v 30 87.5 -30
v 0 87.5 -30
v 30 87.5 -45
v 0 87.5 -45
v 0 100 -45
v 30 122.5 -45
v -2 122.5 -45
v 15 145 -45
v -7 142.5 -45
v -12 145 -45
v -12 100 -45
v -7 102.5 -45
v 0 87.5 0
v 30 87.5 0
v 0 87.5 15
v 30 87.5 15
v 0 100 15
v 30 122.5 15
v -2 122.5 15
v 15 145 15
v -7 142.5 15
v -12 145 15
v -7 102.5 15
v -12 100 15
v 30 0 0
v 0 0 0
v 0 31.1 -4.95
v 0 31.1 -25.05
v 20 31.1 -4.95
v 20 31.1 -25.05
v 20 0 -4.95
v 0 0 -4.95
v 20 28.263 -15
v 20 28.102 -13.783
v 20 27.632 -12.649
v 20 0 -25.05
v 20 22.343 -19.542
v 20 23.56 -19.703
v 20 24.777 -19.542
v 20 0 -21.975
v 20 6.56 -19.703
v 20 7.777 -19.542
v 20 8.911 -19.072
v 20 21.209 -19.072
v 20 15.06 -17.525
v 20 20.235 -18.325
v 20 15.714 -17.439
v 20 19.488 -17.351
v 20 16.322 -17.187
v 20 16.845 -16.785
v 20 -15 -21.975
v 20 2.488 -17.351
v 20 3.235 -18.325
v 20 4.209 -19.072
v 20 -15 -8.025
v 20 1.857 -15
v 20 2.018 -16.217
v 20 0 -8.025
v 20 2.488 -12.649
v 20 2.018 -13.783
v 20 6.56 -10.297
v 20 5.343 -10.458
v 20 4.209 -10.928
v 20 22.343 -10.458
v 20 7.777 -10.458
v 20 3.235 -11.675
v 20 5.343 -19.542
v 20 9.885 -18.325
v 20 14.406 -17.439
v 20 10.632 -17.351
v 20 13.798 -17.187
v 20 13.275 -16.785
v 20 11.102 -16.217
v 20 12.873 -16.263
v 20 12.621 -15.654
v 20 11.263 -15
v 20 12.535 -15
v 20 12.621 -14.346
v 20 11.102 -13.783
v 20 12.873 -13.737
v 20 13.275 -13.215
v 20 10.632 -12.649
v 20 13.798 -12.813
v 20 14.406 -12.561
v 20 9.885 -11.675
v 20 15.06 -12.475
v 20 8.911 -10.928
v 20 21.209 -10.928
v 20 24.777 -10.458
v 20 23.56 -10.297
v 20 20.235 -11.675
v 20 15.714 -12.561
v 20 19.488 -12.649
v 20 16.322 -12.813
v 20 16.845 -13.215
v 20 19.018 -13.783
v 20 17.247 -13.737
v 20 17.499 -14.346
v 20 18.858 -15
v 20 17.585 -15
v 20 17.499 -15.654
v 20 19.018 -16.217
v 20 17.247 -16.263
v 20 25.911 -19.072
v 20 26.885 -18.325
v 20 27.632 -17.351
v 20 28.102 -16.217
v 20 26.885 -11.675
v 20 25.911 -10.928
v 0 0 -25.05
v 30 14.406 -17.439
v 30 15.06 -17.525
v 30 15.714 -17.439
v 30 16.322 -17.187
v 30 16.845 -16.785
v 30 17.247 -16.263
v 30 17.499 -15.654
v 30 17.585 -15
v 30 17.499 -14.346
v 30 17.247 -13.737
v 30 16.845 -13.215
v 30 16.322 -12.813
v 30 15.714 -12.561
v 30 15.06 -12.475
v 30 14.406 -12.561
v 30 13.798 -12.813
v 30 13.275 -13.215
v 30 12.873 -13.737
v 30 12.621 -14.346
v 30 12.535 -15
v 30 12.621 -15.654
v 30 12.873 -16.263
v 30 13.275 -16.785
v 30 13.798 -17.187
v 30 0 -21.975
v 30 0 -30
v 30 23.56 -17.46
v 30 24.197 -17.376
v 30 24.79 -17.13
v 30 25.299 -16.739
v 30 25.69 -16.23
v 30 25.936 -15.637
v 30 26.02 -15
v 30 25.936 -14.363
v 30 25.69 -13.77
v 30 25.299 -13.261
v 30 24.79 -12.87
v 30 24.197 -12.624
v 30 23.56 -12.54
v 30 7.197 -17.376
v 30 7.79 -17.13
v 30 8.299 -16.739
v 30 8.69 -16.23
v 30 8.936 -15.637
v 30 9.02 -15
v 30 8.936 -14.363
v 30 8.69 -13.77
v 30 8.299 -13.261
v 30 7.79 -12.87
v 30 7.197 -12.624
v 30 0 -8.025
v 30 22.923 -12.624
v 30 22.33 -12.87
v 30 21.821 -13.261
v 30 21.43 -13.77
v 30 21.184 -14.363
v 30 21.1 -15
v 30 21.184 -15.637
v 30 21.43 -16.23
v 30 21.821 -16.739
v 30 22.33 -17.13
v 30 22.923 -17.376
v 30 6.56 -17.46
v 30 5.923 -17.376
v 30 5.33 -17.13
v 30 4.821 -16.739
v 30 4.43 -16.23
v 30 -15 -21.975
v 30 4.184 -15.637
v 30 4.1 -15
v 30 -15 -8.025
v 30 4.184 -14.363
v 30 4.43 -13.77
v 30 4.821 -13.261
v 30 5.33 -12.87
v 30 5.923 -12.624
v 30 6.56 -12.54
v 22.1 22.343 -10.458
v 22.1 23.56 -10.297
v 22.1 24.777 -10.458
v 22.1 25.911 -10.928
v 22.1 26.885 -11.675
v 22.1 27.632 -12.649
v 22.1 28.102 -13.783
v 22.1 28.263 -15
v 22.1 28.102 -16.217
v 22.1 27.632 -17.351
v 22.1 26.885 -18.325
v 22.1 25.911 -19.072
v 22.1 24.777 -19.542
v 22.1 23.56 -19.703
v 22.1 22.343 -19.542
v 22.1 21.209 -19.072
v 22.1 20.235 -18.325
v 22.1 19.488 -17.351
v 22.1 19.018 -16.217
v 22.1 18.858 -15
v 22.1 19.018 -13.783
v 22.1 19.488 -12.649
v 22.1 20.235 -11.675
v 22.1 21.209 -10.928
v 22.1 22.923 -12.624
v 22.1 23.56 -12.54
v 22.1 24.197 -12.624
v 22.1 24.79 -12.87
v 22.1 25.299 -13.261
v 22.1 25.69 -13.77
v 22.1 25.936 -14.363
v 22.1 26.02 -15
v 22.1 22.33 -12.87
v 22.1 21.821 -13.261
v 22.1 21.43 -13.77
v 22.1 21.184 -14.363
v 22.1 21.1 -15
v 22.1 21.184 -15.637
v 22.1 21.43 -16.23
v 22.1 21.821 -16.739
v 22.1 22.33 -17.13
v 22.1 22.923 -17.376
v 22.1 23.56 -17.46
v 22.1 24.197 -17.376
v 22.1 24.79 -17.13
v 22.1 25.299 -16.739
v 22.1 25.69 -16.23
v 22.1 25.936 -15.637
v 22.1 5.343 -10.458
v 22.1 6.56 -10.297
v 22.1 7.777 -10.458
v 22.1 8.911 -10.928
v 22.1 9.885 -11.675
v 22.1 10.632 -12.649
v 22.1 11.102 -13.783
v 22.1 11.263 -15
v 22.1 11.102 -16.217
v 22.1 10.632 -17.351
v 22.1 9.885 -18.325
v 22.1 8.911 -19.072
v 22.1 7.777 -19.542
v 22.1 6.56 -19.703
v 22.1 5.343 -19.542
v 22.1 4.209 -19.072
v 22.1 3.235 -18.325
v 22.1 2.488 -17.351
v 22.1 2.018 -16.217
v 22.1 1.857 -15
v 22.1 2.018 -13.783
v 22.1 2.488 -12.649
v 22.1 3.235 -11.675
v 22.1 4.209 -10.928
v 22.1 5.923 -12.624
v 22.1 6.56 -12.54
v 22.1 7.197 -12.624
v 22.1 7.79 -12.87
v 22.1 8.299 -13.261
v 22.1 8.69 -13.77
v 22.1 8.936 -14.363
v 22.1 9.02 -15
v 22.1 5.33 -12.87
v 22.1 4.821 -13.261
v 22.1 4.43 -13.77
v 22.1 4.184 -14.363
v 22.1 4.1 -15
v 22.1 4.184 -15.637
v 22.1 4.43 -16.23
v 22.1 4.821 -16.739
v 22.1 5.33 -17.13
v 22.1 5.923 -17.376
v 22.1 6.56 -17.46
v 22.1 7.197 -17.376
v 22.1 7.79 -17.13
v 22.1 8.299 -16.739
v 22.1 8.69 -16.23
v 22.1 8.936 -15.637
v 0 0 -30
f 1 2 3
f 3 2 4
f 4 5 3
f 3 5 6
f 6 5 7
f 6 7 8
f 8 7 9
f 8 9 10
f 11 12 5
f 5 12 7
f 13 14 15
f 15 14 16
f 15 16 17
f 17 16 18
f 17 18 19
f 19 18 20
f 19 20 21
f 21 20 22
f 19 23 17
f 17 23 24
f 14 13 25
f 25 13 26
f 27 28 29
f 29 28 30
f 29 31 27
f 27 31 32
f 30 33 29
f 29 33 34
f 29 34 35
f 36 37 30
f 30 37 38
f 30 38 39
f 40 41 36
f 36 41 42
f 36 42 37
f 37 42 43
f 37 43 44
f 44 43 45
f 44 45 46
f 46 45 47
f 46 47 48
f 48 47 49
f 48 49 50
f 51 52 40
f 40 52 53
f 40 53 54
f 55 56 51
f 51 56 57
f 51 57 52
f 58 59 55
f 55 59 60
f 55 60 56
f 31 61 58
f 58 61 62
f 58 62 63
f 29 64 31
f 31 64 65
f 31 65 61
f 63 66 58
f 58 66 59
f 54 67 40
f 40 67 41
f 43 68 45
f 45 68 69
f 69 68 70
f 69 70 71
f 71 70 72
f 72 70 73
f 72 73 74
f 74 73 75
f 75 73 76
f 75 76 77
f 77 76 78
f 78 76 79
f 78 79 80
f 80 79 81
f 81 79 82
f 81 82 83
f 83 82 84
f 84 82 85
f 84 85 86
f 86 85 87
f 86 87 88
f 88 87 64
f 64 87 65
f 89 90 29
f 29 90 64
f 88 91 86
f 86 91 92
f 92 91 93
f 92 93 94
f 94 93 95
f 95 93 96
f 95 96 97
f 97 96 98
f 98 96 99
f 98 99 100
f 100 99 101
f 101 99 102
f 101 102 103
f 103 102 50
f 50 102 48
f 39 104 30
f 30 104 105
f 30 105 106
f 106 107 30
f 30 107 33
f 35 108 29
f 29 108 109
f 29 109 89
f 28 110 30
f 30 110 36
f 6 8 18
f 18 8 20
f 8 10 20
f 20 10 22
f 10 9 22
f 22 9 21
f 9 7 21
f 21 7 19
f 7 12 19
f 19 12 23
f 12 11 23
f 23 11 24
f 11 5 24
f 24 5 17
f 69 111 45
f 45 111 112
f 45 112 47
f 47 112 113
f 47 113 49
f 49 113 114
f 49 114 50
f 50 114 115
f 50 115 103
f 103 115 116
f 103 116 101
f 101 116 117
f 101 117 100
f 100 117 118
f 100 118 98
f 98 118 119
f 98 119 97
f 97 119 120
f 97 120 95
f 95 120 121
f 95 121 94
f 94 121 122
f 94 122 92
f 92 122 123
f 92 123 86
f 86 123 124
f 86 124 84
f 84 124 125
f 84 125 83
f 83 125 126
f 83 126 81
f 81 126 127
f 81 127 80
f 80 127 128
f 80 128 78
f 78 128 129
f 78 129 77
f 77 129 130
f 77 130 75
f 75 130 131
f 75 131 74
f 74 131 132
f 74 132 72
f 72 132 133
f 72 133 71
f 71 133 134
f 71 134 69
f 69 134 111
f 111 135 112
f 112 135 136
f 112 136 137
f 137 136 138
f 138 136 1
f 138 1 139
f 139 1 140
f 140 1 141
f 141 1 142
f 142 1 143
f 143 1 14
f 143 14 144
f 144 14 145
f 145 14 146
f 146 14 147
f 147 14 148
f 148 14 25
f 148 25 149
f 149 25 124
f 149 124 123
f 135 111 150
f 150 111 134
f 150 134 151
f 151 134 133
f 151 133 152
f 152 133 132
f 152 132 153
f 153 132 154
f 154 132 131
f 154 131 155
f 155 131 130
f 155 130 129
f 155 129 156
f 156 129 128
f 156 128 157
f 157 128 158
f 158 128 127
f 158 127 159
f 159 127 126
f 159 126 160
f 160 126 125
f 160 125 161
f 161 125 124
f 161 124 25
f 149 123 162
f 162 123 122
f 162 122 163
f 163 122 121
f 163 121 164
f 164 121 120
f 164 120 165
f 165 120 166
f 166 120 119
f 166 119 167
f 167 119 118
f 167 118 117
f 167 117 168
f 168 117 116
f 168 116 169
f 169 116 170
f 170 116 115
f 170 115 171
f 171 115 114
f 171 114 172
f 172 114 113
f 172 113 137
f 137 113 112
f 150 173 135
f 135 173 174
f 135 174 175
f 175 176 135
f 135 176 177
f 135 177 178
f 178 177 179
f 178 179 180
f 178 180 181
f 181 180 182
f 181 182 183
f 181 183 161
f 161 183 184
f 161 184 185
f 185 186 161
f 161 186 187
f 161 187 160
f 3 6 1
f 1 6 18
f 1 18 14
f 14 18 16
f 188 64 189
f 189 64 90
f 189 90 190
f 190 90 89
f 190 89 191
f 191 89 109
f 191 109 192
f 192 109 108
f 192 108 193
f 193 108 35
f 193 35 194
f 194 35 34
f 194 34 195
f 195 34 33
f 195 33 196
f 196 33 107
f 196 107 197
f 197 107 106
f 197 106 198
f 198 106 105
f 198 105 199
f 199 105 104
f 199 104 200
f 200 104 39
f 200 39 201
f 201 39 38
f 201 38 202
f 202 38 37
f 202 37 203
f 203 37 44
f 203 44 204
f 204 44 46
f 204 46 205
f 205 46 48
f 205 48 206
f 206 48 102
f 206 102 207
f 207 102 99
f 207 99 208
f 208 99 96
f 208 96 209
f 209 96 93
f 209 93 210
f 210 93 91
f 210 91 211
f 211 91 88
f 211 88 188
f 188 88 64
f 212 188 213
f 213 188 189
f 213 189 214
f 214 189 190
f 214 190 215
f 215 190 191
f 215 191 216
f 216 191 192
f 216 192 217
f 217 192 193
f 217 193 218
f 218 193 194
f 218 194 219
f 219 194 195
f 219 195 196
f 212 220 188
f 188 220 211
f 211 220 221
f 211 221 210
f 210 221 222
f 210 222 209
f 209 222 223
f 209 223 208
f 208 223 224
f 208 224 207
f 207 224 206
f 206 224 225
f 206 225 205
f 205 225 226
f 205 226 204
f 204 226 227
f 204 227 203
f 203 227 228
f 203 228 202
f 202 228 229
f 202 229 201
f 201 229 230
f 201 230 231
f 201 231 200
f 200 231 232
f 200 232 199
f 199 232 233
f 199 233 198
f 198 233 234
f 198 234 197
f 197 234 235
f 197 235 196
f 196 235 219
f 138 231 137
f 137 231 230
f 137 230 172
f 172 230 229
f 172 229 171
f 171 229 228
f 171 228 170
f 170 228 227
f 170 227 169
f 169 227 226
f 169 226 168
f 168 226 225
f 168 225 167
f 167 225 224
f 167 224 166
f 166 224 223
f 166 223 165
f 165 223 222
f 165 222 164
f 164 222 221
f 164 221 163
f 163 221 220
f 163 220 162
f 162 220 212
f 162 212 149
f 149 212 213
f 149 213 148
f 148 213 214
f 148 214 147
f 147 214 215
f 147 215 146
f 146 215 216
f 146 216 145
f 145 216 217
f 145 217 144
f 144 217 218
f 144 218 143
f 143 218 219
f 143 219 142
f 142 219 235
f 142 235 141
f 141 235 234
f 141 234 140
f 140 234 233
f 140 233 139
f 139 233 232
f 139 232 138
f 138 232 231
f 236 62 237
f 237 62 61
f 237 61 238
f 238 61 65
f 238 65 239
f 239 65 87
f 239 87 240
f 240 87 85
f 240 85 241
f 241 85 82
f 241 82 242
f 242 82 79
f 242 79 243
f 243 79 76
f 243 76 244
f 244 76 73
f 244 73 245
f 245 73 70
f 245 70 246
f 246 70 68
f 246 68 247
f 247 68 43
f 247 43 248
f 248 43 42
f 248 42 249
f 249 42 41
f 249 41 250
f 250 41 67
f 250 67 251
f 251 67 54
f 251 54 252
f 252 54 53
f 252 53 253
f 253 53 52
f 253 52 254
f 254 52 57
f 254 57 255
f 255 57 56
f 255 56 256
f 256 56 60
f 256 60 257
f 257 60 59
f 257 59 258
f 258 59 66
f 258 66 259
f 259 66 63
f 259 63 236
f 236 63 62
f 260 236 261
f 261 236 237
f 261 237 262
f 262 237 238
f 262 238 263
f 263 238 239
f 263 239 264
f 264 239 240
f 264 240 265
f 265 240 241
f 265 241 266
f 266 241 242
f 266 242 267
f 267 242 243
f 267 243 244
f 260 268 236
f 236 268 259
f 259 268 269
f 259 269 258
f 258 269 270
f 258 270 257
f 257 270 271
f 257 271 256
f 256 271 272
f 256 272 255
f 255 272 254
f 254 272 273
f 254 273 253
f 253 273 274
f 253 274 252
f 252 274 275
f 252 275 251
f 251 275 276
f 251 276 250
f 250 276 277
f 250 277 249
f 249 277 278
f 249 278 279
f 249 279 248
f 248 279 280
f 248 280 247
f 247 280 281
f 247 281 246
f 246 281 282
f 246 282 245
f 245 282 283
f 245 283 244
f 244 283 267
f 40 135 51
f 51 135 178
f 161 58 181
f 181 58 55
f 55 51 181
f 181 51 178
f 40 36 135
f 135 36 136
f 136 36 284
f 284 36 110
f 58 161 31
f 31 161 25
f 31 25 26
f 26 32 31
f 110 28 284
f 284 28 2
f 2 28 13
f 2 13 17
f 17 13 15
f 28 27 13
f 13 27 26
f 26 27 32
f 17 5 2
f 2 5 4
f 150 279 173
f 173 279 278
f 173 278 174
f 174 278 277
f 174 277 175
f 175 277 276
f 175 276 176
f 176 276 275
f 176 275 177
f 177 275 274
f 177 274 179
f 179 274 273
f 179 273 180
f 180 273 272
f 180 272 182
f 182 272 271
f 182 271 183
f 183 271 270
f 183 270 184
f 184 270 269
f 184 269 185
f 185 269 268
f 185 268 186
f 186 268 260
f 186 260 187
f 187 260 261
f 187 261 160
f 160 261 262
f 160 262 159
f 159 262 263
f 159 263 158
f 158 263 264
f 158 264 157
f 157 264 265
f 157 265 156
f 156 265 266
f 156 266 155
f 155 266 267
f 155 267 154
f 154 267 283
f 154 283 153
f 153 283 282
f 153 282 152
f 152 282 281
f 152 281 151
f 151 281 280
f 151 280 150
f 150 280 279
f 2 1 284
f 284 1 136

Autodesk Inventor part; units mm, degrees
ref_plane "YZ Plane" through (0, 0, 0) normal (1, 0, 0) x (0, 1, 0)
ref_plane "XZ Plane" through (0, 0, 0) normal (0, 1, 0) x (-1, 0, 0)
sketch "Sketch1" plane through (0, 0, 0) normal (0, 0, 1) x (1, 0, 0)
  line L0 (0, 0) -> (25, 0)
  line L1 (25, 0) -> (25, 40)
  line L2 (25, 40) -> (0, 40)
  line L3 (0, 40) -> (0, 0)
  dimension "d1" = 25
  dimension "d2" = 40
  dimension "d3" = 25
extrude "Extrusion1" add sketch "Sketch1" against normal blind 30
sketch "Sketch2" plane through (25, 0, 0) normal (1, 0, 0) x (0, 0, -1)
  line L0 (0, 0) -> (30, 0) projected
  circle A0 centre (15, 6.56) radius 2.46
extrude "Extrusion2" cut sketch "Sketch2" against normal blind 30
sketch "Sketch3" plane through (0, 0, 0) normal (-1, 0, 0) x (0, 0, 1)
  line L0 (0, 0) -> (-30, 0) projected
  line L1 (-25.05, 0) -> (-4.95, 0)
  line L2 (-4.95, 0) -> (-4.95, 33.12)
  line L3 (-4.95, 33.12) -> (-25.05, 33.12)
  line L4 (-25.05, 33.12) -> (-25.05, 0)
  dimension "d11" = 20.1
extrude "Extrusion3" cut sketch "Sketch3" against normal blind 20
sketch "Sketch4" plane through (0, 0, 0) normal (0, -1, 0) x (1, 0, 0)
  line L0 (20, -4.95) -> (20, -25.05) projected
  line L1 (20, -15) -> (25, -15)
  line L2 (25, 0) -> (25, -30) projected
  line L3 (20, -8.025) -> (25, -8.025)
  line L4 (25, -8.025) -> (25, -21.975)
  line L5 (25, -21.975) -> (20, -21.975)
  line L6 (20, -21.975) -> (20, -8.025)
  line L7 (20, -8.025) -> (25, -21.975) construction
  line L8 (25, -8.025) -> (20, -21.975) construction
  line L9 (25, -12.54) -> (25, -17.46) projected
  point P0 (0, 0)
  point P1 (22.5, -15)
  dimension "d14" = 13.95
extrude "Extrusion4" add sketch "Sketch4" along normal blind 15
sketch "Sketch5" plane through (20, 0, 0) normal (-1, 0, 0) x (0, 0, 1)
  circle A0 centre (-15, 6.56) radius 2.46 projected
  circle A1 centre (-15, 6.56) radius 4.7025
  circle A2 centre (-15, 6.56) radius 2.46 projected
  circle A3 centre (-15, 6.56) radius 2.46
  point P0 (0, 0)
  dimension "d17" = 9.405
extrude "Extrusion5" cut sketch "Sketch5" against normal blind 2.1
sketch "Sketch6" plane through (25, 0, 0) normal (1, 0, 0) x (0, 0, -1)
  circle A0 centre (15, 6.56) radius 4.7025 projected
  line L0 (15, 6.56) -> (15, 23.56)
  circle A1 centre (15, 23.56) radius 2.46
  point P0 (0, 0)
  dimension "d20" = 17
  dimension "d21" = 4.92
extrude "Extrusion6" cut sketch "Sketch6" against normal blind 10 contours A1
sketch "Sketch7" plane through (20, 0, 0) normal (-1, 0, 0) x (0, 0, 1)
  circle A0 centre (-15, 23.56) radius 2.46 projected
  circle A1 centre (-15, 23.56) radius 4.7025
  point P0 (0, 0)
  dimension "d24" = 9.405
extrude "Extrusion7" cut sketch "Sketch7" against normal blind 2.1
sketch "Sketch9" plane through (25, 0, 0) normal (1, 0, 0) x (0, 0, -1)
  circle A0 centre (15, 6.56) radius 2.46 projected
  circle A1 centre (15, 6.56) radius 2.46
  circle A2 centre (15, 23.56) radius 2.46 projected
  circle A3 centre (15, 23.56) radius 2.46
  line L0 (30, 40) -> (30, 0) projected
  line L1 (30, 0) -> (30, 40)
  line L2 (30, 40) -> (0, 40)
  line L3 (0, 40) -> (0, 0)
  line L4 (0, 0) -> (8.025, 0) projected
  line L5 (21.975, 0) -> (21.975, -15)
  line L6 (21.975, -15) -> (8.025, -15)
  line L7 (8.025, -15) -> (8.025, 0)
  line L8 (0, 0) -> (8.025, 0)
  line L9 (21.975, 0) -> (30, 0)
extrude "Extrusion8" add sketch "Sketch9" along normal blind 5
sketch "Sketch10" plane through (0, 40, 0) normal (0, 1, 0) x (1, 0, 0)
  line L0 (0, 30) -> (30, 30) projected
  line L1 (30, 0) -> (0, 0) projected
  line L2 (0, 30) -> (30, 30)
  line L3 (30, 30) -> (30, 0)
  line L4 (30, 0) -> (0, 0)
  line L5 (0, 0) -> (0, 30)
extrude "Extrusion9" add sketch "Sketch10" along normal blind 30
sketch "Sketch12" plane through (30, 0, 0) normal (1, 0, 0) x (0, 0, -1)
  circle A0 centre (15, 6.56) radius 2.46 projected
  line L0 (15, 6.56) -> (15, 15.06)
  circle A1 centre (15, 15.06) radius 2.525
  point P0 (0, 0)
  dimension "d31" = 8.5
  dimension "d33" = 5.05
extrude "Extrusion10" cut sketch "Sketch12" against normal blind 30 contours A1
sketch "Sketch14" plane through (0, 0, 0) normal (0, 0, 1) x (1, 0, 0)
  line L0 (30, 70) -> (0, 70) projected
  line L1 (0, 70) -> (0, 100)
  line L2 (30, 0) -> (30, 70) projected
  line L3 (30, 122.5) -> (30, 70)
  line L4 (30, 105) -> (30, 100)
  line L5 (-12, 145) -> (15, 145)
  line L6 (-7, 142.5) -> (-12, 145)
  line L7 (-7, 102.5) -> (-12, 100)
  line L8 (-7, 102.5) -> (-2, 122.5)
  line L9 (-2, 122.5) -> (-7, 142.5)
  line L10 (30, 122.5) -> (15, 145)
  line L11 (0, 100) -> (-12, 100)
  point P0 (0, 0)
  dimension "d86" = 12
extrude "Extrusion12" add sketch "Sketch14" against normal blind 30
sketch "Sketch15" plane through (0, 0, -25.05) normal (-1, 0, 0) x (0, 0, 1)
  line L0 (0, 33.12) -> (20.1, 33.12) projected
  line L1 (20.1, 33.12) -> (20.1, 0) projected
  line L2 (0, 33.12) -> (20.1, 33.12)
  line L3 (20.1, 33.12) -> (20.1, 31.1)
  line L4 (20.1, 31.1) -> (0, 31.1)
  line L5 (0, 31.1) -> (0, 33.12)
  point P0 (25.05, 0)
  dimension "d57" = 2.02
extrude "Extrusion13" add sketch "Sketch15" against normal blind 20
sketch "Sketch24" plane through (0, 0, 0) normal (0, 0, 1) x (1, 0, 0)
  line L0 (0, 100) -> (-12, 100) projected
  line L1 (-12, 100) -> (-7, 102.5) projected
  line L2 (0, 100) -> (-12, 100)
  line L3 (-12, 100) -> (-7, 102.5)
  line L4 (-7, 102.5) -> (-2, 122.5) projected
  line L5 (-7, 102.5) -> (-2, 122.5)
  line L6 (-2, 122.5) -> (-7, 142.5) projected
  line L7 (-2, 122.5) -> (-7, 142.5)
  line L8 (-7, 142.5) -> (-12, 145) projected
  line L9 (-7, 142.5) -> (-12, 145)
  line L10 (-12, 145) -> (15, 145) projected
  line L11 (-12, 145) -> (15, 145)
  line L12 (15, 145) -> (30, 122.5) projected
  line L13 (15, 145) -> (30, 122.5)
  line L14 (30, 122.5) -> (30, 87.5)
  line L15 (30, 87.5) -> (0, 87.5)
  line L16 (0, 87.5) -> (0, 100)
  point P0 (0, 0)
  dimension "d87" = 35
  dimension "d88" = 30
extrude "Extrusion14" add sketch "Sketch24" along normal blind 15
ref_plane "Work Plane1" through (0, 0, -15) normal (0, 0, 1) x (1, 0, 0)
mirror "Mirror1" about plane through (0, 0, -15) normal (0, 0, 1) of "Extrusion14"
properties part number "rec_b_40mm_x_60mm"
